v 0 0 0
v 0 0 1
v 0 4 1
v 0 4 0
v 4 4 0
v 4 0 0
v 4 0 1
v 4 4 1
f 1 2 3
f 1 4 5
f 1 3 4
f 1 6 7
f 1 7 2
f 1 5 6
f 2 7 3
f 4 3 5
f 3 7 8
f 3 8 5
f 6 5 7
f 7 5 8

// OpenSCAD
/* Warning, this is a very basic generator with a lot of approximation 
input data : [QFN, 3DW, 4x4x1mm, 16, , A, C04-00582A]
generated by com.zoubworld.electronics.cad.model3d.Basic
Date : Sun Feb 15 10:50:49 CET 2026
*/

//body
color("black")
translate([0,0,0])
cube([4.0,4.0,1.0], center=false);
